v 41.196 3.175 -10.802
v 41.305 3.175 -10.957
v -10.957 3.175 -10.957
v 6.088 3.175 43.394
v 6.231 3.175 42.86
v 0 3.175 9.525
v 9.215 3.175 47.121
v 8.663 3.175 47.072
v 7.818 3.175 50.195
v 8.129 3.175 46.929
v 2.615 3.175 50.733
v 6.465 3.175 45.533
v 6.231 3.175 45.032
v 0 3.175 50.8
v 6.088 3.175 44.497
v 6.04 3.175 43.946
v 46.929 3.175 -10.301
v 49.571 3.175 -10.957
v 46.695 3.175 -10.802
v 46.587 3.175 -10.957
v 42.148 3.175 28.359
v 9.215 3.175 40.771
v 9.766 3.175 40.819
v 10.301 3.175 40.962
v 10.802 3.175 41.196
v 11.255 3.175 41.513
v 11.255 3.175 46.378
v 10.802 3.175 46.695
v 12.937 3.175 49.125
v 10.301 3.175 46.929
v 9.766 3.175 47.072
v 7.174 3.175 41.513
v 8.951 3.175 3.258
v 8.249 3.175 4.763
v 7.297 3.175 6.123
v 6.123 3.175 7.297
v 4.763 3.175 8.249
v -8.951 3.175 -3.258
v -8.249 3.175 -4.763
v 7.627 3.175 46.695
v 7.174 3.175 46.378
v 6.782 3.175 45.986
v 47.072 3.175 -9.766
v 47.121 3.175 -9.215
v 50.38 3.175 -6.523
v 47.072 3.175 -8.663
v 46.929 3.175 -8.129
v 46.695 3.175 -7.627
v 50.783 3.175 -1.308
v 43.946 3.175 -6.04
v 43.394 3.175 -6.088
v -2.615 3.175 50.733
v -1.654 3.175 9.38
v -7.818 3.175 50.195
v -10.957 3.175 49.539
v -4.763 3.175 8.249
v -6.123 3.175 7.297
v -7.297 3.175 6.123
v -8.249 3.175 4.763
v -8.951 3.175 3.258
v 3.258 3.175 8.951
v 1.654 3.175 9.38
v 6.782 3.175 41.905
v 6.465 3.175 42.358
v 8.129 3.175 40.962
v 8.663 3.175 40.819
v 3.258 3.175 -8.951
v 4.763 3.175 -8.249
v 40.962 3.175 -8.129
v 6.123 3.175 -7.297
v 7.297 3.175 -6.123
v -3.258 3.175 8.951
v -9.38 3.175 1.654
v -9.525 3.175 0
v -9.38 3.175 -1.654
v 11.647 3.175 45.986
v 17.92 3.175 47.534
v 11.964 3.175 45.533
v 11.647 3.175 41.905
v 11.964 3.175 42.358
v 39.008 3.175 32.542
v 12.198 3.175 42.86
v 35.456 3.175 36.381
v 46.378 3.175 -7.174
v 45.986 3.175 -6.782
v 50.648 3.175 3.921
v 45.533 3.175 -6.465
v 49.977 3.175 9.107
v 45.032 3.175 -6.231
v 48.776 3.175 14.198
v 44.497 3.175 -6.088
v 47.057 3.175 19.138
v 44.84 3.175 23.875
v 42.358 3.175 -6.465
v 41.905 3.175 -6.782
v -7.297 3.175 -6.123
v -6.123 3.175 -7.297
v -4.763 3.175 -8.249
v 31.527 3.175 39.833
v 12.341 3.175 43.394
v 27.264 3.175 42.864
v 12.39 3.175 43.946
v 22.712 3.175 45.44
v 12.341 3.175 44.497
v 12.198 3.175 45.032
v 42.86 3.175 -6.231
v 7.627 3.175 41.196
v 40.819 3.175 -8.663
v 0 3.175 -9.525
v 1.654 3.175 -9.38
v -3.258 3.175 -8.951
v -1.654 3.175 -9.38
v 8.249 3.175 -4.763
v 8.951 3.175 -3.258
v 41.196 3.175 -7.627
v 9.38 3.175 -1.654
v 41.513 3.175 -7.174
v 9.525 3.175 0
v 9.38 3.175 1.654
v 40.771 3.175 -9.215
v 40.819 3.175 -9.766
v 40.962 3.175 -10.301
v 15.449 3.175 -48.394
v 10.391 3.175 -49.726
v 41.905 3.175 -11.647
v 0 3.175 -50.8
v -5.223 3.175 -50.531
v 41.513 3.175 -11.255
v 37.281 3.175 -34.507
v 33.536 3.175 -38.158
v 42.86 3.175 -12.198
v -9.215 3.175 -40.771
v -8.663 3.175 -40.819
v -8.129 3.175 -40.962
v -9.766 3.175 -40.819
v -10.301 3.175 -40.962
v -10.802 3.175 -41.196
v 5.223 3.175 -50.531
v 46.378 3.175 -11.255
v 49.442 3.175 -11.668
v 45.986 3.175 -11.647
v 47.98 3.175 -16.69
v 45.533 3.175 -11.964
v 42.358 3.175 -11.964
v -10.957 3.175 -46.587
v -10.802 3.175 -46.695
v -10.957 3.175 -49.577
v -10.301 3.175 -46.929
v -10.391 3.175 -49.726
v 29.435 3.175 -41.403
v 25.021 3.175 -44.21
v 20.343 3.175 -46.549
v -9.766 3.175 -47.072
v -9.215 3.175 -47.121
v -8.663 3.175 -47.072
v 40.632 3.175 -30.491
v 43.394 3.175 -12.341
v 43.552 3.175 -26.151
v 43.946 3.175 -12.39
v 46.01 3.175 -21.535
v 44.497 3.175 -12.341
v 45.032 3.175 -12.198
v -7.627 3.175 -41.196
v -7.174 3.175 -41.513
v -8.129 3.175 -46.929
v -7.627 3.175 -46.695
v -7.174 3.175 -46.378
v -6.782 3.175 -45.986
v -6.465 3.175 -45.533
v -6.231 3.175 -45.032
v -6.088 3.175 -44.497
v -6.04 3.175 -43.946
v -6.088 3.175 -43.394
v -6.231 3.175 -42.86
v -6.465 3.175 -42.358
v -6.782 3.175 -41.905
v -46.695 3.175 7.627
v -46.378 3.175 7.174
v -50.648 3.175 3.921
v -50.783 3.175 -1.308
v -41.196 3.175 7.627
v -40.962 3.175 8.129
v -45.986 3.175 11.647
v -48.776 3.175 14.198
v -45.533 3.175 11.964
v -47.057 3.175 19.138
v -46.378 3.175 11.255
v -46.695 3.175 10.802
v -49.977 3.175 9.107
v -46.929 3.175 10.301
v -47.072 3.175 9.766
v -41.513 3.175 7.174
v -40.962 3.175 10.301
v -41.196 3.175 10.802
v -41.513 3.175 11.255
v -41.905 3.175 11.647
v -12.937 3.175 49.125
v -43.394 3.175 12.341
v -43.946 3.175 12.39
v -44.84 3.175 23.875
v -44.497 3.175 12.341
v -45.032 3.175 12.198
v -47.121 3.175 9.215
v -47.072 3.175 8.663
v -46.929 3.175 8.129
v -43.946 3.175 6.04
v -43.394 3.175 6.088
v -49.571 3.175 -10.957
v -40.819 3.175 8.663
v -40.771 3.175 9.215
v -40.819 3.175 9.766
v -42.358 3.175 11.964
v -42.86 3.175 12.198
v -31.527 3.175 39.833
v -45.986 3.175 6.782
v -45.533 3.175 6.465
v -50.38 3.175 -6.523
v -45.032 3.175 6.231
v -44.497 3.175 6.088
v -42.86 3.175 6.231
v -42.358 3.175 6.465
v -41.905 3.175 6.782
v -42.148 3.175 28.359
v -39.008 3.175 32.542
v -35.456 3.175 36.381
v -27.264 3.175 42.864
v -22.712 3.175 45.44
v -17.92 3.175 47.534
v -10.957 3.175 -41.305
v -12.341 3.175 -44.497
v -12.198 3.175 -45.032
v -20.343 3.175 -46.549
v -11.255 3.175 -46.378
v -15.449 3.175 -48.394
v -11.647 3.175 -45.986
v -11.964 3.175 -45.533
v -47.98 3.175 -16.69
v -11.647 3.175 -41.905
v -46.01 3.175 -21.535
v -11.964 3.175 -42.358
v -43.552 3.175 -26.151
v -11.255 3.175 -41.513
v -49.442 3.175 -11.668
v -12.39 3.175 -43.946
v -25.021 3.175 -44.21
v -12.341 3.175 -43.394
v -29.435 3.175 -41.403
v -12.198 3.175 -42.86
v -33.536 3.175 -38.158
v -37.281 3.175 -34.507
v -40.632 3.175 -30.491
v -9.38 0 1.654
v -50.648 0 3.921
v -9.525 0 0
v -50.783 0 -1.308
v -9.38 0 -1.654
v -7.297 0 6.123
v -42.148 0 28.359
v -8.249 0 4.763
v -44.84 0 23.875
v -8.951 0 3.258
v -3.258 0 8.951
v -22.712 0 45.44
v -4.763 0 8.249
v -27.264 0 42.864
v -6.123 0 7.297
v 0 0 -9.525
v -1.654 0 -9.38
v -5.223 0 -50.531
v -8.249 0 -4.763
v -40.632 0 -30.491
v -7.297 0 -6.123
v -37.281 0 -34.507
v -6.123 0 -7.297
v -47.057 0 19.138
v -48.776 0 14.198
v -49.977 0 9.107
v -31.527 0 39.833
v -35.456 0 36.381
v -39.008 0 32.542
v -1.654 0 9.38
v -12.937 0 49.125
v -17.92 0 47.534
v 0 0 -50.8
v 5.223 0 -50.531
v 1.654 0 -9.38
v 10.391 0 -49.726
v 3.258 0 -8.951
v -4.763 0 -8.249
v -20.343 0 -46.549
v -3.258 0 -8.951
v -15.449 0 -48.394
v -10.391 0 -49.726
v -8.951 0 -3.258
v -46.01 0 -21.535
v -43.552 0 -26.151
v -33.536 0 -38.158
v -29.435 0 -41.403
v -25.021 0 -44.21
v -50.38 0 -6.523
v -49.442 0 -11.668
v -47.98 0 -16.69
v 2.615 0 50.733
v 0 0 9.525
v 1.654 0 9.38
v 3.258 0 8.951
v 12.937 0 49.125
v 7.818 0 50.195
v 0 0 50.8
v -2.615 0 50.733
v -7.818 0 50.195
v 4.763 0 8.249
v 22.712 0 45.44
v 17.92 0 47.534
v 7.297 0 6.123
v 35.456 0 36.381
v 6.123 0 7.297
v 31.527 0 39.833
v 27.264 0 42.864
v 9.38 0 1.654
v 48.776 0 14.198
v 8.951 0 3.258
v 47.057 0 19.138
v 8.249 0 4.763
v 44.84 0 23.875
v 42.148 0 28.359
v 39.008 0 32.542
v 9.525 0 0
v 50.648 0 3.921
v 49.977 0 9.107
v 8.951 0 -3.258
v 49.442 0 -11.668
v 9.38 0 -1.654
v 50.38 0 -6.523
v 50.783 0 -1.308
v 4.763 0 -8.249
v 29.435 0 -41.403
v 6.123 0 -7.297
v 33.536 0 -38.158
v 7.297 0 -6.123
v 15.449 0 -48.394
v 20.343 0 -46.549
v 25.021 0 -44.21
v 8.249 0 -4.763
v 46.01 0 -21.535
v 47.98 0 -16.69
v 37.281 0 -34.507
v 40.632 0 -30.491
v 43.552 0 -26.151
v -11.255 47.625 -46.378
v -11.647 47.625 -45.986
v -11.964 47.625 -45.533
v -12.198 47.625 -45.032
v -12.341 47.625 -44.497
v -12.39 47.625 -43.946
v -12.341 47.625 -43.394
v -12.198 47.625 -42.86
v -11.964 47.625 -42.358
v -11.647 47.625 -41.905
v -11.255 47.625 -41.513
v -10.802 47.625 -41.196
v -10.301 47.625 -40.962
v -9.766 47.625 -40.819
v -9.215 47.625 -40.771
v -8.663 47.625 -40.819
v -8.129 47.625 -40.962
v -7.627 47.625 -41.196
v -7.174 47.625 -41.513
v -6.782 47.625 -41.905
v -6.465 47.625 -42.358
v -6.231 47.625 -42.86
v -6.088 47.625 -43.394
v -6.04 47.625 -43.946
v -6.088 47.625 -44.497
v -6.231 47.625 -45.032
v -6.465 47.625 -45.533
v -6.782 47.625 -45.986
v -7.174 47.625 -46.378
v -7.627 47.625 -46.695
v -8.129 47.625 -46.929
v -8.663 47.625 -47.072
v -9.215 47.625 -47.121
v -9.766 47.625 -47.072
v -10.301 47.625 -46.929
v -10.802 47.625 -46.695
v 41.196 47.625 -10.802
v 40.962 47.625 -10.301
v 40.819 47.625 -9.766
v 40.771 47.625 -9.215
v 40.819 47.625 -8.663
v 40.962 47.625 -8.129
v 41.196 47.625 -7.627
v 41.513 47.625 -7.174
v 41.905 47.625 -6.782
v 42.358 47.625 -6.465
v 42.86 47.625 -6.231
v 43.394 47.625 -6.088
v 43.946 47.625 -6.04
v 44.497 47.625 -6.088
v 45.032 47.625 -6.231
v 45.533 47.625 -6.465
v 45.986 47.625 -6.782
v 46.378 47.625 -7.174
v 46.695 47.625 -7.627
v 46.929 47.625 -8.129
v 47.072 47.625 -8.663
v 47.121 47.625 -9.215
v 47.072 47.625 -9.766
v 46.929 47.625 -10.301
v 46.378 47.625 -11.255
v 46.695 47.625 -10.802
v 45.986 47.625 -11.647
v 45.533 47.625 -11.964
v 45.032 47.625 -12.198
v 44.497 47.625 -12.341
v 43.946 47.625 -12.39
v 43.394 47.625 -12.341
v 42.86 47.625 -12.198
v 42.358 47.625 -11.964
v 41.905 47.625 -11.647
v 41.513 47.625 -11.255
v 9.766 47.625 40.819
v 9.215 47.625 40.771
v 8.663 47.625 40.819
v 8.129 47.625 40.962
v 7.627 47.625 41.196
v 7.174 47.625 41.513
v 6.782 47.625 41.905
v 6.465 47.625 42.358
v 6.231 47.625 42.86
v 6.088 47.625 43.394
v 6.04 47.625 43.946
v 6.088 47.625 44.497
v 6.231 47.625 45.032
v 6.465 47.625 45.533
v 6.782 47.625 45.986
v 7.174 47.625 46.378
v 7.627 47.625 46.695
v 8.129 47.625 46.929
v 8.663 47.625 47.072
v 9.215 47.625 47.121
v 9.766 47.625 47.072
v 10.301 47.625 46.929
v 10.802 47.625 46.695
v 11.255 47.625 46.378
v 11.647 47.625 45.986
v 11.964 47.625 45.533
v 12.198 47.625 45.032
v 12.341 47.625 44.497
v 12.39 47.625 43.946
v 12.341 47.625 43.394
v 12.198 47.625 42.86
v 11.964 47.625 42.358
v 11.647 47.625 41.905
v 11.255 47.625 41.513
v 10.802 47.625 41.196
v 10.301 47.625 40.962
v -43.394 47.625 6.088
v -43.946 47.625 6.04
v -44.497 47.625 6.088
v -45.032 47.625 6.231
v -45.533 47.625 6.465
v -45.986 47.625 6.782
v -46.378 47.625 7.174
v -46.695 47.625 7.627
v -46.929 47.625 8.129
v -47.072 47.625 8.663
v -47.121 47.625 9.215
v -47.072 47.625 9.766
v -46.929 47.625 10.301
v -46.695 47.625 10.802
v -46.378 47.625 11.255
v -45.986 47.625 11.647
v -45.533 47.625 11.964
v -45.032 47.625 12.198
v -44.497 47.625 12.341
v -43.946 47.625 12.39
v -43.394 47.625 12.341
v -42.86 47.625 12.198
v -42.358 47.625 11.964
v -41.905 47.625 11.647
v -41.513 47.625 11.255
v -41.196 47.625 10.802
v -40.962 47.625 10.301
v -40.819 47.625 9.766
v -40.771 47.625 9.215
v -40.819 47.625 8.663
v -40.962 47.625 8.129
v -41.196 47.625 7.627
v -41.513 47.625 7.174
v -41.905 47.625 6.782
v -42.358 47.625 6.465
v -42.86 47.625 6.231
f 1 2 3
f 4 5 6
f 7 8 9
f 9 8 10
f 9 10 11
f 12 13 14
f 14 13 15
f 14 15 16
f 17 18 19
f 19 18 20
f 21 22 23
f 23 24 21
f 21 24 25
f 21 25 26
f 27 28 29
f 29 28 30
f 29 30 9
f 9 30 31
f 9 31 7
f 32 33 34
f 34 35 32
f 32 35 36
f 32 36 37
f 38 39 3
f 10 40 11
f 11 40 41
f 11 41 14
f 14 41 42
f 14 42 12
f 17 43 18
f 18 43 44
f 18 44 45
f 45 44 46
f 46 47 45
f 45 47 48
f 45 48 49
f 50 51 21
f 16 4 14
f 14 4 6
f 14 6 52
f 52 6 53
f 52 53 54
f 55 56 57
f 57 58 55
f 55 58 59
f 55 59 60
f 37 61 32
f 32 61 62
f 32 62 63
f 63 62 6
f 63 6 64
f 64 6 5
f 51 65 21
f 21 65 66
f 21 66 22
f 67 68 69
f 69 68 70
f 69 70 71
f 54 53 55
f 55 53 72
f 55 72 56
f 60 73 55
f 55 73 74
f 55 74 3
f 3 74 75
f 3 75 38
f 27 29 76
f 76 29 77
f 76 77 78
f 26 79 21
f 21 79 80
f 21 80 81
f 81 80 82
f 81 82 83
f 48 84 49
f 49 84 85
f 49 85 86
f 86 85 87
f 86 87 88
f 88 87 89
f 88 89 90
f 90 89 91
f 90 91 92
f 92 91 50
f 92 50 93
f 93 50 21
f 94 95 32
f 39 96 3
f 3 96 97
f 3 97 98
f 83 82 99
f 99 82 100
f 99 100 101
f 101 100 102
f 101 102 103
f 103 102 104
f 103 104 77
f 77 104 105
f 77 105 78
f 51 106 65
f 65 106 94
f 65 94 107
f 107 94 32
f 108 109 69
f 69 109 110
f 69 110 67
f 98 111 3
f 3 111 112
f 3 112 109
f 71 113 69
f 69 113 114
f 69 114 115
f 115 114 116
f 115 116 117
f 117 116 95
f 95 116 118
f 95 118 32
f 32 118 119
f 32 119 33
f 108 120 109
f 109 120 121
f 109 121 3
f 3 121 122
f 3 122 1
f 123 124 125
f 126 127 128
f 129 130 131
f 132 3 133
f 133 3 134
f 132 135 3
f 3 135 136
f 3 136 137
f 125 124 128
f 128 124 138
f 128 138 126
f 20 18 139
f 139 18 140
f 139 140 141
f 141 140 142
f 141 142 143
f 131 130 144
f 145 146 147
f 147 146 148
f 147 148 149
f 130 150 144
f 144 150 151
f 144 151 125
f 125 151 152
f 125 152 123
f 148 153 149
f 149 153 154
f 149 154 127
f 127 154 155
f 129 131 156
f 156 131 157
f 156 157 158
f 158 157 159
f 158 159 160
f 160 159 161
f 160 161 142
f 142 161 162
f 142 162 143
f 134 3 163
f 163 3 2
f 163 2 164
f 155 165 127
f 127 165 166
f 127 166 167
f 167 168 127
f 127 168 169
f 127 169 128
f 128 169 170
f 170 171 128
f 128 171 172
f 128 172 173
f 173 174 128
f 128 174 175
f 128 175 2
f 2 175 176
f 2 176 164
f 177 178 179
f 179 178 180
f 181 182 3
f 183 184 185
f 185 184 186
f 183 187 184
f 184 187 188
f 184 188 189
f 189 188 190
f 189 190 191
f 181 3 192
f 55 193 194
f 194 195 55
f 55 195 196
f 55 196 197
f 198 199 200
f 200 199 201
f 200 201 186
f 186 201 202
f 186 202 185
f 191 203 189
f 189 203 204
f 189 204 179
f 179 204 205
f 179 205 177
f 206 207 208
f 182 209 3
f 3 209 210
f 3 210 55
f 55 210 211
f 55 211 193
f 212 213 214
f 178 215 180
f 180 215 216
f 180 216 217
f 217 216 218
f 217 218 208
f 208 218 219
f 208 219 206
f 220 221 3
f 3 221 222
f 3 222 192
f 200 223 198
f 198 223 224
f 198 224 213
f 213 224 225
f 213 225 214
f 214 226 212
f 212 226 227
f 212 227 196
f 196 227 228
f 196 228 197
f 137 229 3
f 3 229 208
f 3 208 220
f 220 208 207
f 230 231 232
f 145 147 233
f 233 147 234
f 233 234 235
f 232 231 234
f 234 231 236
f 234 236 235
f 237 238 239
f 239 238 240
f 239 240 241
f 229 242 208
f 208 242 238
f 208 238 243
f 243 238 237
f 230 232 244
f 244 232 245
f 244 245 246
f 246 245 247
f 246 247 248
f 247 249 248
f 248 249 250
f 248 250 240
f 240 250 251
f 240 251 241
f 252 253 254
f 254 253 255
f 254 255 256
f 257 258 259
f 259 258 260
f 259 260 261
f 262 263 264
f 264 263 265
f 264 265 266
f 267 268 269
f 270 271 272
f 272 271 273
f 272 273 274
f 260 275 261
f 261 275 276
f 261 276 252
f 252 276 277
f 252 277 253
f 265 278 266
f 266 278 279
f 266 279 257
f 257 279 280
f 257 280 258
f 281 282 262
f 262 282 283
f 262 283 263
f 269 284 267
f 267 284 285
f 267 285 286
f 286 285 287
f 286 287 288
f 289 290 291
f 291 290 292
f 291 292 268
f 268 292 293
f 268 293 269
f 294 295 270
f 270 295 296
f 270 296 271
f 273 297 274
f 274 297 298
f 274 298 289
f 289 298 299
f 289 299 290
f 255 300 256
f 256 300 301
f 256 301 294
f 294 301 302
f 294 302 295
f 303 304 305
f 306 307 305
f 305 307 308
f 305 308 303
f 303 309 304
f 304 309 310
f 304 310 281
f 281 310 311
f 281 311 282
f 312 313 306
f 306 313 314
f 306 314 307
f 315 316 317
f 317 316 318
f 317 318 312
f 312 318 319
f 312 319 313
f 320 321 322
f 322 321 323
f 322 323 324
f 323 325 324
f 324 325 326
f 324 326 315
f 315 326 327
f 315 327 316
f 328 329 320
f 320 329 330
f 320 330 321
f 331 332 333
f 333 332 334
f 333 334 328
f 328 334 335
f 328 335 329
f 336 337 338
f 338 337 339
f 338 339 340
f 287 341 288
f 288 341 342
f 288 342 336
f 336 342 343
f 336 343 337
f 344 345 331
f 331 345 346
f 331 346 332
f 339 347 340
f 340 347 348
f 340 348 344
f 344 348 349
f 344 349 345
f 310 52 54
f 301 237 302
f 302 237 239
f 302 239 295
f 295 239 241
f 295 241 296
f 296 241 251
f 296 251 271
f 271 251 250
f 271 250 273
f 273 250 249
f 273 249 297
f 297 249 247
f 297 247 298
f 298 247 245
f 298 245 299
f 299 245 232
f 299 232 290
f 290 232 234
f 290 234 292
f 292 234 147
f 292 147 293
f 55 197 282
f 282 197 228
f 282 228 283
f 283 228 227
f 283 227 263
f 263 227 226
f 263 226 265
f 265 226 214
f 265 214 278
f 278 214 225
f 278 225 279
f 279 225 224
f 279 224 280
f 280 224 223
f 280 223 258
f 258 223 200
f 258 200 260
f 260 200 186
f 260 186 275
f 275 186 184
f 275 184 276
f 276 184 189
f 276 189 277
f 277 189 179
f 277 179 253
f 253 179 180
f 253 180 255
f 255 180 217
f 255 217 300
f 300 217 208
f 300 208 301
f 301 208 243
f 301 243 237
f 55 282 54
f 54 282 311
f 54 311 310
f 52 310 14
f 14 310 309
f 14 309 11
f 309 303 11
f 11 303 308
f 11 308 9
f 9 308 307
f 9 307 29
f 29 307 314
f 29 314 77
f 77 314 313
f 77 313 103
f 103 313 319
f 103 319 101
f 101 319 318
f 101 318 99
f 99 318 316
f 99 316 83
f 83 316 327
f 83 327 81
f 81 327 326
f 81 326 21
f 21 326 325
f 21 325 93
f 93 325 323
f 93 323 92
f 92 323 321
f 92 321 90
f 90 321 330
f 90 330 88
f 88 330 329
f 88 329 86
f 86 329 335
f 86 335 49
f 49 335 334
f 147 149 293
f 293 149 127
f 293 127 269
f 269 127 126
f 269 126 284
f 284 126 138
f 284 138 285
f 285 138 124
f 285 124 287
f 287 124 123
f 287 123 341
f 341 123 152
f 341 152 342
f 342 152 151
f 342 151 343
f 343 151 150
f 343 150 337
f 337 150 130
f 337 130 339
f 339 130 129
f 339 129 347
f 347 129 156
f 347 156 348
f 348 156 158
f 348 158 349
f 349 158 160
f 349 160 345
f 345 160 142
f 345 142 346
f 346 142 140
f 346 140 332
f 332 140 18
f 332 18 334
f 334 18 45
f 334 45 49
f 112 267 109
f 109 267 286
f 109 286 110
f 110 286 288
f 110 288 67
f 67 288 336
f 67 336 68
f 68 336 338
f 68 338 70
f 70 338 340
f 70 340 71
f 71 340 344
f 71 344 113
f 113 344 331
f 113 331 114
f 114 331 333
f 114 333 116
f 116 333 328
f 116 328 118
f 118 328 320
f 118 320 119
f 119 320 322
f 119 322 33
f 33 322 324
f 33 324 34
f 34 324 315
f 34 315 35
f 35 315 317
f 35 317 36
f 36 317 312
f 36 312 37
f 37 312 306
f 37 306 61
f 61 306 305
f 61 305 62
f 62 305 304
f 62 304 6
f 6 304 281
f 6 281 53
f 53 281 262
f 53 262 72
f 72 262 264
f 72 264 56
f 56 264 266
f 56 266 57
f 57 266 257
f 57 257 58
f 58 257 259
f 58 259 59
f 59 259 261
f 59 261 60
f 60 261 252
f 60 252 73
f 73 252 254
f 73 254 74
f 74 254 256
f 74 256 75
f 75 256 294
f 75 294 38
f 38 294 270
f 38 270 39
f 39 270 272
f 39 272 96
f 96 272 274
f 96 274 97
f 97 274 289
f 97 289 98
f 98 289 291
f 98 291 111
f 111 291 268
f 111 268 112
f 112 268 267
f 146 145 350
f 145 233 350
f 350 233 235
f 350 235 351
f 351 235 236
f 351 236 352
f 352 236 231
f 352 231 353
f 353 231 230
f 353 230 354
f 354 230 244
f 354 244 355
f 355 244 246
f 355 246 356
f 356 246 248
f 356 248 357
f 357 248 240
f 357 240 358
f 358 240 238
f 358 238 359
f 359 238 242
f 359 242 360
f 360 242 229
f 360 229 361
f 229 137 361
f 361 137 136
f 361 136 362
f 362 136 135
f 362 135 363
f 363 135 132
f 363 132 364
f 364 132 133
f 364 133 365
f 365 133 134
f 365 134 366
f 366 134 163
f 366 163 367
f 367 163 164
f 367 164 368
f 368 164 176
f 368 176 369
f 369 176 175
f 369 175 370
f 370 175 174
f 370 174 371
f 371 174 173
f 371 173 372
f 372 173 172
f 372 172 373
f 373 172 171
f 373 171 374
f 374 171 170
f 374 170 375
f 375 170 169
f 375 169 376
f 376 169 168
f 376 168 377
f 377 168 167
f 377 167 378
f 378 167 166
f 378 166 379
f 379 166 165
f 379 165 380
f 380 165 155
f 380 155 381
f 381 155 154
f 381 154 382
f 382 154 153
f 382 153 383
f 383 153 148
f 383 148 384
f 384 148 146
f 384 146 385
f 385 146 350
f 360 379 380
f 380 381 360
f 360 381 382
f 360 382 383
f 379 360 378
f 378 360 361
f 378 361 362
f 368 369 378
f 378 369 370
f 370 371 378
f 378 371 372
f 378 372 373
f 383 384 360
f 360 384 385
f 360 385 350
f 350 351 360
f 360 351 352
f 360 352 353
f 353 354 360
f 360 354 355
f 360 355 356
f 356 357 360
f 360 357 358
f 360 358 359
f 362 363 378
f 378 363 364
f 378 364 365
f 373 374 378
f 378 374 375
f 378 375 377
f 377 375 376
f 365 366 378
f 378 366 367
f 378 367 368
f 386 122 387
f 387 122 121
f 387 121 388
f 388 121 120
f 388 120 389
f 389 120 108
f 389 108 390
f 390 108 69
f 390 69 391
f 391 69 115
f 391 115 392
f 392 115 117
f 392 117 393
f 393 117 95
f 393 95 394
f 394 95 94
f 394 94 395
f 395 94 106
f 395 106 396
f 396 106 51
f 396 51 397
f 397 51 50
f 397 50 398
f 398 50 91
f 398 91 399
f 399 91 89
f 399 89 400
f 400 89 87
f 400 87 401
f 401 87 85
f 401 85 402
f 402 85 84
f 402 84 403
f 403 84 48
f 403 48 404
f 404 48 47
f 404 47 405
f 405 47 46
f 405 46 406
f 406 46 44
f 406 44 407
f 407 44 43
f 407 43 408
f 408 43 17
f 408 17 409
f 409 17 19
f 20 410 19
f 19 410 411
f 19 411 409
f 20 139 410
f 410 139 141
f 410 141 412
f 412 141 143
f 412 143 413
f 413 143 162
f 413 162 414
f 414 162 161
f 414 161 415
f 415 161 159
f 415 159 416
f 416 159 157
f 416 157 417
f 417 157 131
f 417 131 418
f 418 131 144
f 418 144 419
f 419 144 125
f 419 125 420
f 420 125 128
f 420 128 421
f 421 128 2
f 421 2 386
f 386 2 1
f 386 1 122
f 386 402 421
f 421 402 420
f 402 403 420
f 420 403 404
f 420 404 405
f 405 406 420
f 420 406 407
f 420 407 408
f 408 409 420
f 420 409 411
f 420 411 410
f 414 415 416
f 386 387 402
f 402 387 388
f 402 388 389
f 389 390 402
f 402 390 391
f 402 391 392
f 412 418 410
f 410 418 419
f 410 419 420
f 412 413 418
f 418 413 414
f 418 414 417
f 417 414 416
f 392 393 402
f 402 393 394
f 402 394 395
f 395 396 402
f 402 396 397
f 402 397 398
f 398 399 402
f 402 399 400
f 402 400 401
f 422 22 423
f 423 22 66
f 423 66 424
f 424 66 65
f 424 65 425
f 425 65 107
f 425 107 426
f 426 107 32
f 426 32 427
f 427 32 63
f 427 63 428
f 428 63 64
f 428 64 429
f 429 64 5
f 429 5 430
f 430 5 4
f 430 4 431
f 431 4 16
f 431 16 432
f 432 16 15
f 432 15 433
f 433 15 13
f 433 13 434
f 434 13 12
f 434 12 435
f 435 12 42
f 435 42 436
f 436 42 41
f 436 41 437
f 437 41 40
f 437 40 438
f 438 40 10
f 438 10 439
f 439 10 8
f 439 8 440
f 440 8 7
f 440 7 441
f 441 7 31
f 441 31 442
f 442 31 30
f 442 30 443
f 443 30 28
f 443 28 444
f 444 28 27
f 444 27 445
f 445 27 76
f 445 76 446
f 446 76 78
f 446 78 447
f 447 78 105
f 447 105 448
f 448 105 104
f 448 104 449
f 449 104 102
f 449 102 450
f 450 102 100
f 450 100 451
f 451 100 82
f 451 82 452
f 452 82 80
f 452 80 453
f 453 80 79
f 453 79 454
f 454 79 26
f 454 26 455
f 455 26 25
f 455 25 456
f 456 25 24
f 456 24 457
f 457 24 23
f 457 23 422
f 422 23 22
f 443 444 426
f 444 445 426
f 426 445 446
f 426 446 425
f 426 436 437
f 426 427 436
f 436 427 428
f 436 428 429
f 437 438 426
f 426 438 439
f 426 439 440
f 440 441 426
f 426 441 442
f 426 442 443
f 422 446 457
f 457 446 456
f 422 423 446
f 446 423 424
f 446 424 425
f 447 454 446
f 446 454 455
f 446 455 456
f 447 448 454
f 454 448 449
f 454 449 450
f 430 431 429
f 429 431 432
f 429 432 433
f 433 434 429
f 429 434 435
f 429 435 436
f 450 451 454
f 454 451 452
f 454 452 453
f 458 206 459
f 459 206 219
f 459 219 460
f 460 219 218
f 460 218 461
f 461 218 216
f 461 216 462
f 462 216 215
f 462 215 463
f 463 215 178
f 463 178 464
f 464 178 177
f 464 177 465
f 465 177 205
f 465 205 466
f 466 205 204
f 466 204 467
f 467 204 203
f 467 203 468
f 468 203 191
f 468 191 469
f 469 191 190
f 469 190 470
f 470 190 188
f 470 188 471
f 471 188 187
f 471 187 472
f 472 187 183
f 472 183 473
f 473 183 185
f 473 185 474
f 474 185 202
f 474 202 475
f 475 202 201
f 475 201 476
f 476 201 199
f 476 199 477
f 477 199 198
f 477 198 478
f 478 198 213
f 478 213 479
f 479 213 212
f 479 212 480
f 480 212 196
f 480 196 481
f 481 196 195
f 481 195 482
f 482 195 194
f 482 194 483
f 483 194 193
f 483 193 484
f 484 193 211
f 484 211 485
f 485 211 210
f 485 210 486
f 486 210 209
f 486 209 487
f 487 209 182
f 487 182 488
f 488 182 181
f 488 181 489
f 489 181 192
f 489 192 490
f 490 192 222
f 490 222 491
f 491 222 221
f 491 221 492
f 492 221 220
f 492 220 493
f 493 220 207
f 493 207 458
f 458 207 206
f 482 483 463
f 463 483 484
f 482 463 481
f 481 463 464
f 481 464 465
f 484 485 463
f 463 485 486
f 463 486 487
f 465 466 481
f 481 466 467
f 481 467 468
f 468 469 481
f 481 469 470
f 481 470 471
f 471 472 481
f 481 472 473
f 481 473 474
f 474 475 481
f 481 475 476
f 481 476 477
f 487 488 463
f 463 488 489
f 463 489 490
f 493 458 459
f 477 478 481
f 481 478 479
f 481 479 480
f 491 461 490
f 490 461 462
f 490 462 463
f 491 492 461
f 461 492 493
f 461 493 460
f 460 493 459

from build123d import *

# Parameters (mm, degrees)
SKETCH1_R           = 50.8
SKETCH1_R_2         = 9.525
BOSS_EXTRUDE1_DEPTH = 3.175
SKETCH2_R           = 3.175
BOSS_EXTRUDE2_DEPTH = 44.45


with BuildPart() as part:
    # Sketch1 → Boss-Extrude1 (new body)
    with BuildSketch(Plane(origin=(0, 0, 0), x_dir=(1, 0, 0), z_dir=(0, 1, 0))):
        with Locations(Location((0, 0, 0), (0, 0, 270))):
            Circle(SKETCH1_R)
        with Locations(Location((0, 0, 0), (0, 0, 270))):
            Circle(SKETCH1_R_2, mode=Mode.SUBTRACT)
    extrude(amount=BOSS_EXTRUDE1_DEPTH)

    # Sketch2 → Boss-Extrude2 (add)
    with BuildSketch(Plane(origin=(0, 3.175, 0), x_dir=(1, 0, 0), z_dir=(0, 1, 0))):
        with Locations(Location((-9.214642662, 43.945595463, 0), (0, 0, 270))):
            Circle(SKETCH2_R)
        with Locations(Location((43.945595463, 9.214642662, 0), (0, 0, 270))):
            Circle(SKETCH2_R)
        with Locations(Location((9.214642662, -43.945595463, 0), (0, 0, 270))):
            Circle(SKETCH2_R)
        with Locations(Location((-43.945595463, -9.214642662, 0), (0, 0, 270))):
            Circle(SKETCH2_R)
    extrude(amount=BOSS_EXTRUDE2_DEPTH)


solid = part.part
